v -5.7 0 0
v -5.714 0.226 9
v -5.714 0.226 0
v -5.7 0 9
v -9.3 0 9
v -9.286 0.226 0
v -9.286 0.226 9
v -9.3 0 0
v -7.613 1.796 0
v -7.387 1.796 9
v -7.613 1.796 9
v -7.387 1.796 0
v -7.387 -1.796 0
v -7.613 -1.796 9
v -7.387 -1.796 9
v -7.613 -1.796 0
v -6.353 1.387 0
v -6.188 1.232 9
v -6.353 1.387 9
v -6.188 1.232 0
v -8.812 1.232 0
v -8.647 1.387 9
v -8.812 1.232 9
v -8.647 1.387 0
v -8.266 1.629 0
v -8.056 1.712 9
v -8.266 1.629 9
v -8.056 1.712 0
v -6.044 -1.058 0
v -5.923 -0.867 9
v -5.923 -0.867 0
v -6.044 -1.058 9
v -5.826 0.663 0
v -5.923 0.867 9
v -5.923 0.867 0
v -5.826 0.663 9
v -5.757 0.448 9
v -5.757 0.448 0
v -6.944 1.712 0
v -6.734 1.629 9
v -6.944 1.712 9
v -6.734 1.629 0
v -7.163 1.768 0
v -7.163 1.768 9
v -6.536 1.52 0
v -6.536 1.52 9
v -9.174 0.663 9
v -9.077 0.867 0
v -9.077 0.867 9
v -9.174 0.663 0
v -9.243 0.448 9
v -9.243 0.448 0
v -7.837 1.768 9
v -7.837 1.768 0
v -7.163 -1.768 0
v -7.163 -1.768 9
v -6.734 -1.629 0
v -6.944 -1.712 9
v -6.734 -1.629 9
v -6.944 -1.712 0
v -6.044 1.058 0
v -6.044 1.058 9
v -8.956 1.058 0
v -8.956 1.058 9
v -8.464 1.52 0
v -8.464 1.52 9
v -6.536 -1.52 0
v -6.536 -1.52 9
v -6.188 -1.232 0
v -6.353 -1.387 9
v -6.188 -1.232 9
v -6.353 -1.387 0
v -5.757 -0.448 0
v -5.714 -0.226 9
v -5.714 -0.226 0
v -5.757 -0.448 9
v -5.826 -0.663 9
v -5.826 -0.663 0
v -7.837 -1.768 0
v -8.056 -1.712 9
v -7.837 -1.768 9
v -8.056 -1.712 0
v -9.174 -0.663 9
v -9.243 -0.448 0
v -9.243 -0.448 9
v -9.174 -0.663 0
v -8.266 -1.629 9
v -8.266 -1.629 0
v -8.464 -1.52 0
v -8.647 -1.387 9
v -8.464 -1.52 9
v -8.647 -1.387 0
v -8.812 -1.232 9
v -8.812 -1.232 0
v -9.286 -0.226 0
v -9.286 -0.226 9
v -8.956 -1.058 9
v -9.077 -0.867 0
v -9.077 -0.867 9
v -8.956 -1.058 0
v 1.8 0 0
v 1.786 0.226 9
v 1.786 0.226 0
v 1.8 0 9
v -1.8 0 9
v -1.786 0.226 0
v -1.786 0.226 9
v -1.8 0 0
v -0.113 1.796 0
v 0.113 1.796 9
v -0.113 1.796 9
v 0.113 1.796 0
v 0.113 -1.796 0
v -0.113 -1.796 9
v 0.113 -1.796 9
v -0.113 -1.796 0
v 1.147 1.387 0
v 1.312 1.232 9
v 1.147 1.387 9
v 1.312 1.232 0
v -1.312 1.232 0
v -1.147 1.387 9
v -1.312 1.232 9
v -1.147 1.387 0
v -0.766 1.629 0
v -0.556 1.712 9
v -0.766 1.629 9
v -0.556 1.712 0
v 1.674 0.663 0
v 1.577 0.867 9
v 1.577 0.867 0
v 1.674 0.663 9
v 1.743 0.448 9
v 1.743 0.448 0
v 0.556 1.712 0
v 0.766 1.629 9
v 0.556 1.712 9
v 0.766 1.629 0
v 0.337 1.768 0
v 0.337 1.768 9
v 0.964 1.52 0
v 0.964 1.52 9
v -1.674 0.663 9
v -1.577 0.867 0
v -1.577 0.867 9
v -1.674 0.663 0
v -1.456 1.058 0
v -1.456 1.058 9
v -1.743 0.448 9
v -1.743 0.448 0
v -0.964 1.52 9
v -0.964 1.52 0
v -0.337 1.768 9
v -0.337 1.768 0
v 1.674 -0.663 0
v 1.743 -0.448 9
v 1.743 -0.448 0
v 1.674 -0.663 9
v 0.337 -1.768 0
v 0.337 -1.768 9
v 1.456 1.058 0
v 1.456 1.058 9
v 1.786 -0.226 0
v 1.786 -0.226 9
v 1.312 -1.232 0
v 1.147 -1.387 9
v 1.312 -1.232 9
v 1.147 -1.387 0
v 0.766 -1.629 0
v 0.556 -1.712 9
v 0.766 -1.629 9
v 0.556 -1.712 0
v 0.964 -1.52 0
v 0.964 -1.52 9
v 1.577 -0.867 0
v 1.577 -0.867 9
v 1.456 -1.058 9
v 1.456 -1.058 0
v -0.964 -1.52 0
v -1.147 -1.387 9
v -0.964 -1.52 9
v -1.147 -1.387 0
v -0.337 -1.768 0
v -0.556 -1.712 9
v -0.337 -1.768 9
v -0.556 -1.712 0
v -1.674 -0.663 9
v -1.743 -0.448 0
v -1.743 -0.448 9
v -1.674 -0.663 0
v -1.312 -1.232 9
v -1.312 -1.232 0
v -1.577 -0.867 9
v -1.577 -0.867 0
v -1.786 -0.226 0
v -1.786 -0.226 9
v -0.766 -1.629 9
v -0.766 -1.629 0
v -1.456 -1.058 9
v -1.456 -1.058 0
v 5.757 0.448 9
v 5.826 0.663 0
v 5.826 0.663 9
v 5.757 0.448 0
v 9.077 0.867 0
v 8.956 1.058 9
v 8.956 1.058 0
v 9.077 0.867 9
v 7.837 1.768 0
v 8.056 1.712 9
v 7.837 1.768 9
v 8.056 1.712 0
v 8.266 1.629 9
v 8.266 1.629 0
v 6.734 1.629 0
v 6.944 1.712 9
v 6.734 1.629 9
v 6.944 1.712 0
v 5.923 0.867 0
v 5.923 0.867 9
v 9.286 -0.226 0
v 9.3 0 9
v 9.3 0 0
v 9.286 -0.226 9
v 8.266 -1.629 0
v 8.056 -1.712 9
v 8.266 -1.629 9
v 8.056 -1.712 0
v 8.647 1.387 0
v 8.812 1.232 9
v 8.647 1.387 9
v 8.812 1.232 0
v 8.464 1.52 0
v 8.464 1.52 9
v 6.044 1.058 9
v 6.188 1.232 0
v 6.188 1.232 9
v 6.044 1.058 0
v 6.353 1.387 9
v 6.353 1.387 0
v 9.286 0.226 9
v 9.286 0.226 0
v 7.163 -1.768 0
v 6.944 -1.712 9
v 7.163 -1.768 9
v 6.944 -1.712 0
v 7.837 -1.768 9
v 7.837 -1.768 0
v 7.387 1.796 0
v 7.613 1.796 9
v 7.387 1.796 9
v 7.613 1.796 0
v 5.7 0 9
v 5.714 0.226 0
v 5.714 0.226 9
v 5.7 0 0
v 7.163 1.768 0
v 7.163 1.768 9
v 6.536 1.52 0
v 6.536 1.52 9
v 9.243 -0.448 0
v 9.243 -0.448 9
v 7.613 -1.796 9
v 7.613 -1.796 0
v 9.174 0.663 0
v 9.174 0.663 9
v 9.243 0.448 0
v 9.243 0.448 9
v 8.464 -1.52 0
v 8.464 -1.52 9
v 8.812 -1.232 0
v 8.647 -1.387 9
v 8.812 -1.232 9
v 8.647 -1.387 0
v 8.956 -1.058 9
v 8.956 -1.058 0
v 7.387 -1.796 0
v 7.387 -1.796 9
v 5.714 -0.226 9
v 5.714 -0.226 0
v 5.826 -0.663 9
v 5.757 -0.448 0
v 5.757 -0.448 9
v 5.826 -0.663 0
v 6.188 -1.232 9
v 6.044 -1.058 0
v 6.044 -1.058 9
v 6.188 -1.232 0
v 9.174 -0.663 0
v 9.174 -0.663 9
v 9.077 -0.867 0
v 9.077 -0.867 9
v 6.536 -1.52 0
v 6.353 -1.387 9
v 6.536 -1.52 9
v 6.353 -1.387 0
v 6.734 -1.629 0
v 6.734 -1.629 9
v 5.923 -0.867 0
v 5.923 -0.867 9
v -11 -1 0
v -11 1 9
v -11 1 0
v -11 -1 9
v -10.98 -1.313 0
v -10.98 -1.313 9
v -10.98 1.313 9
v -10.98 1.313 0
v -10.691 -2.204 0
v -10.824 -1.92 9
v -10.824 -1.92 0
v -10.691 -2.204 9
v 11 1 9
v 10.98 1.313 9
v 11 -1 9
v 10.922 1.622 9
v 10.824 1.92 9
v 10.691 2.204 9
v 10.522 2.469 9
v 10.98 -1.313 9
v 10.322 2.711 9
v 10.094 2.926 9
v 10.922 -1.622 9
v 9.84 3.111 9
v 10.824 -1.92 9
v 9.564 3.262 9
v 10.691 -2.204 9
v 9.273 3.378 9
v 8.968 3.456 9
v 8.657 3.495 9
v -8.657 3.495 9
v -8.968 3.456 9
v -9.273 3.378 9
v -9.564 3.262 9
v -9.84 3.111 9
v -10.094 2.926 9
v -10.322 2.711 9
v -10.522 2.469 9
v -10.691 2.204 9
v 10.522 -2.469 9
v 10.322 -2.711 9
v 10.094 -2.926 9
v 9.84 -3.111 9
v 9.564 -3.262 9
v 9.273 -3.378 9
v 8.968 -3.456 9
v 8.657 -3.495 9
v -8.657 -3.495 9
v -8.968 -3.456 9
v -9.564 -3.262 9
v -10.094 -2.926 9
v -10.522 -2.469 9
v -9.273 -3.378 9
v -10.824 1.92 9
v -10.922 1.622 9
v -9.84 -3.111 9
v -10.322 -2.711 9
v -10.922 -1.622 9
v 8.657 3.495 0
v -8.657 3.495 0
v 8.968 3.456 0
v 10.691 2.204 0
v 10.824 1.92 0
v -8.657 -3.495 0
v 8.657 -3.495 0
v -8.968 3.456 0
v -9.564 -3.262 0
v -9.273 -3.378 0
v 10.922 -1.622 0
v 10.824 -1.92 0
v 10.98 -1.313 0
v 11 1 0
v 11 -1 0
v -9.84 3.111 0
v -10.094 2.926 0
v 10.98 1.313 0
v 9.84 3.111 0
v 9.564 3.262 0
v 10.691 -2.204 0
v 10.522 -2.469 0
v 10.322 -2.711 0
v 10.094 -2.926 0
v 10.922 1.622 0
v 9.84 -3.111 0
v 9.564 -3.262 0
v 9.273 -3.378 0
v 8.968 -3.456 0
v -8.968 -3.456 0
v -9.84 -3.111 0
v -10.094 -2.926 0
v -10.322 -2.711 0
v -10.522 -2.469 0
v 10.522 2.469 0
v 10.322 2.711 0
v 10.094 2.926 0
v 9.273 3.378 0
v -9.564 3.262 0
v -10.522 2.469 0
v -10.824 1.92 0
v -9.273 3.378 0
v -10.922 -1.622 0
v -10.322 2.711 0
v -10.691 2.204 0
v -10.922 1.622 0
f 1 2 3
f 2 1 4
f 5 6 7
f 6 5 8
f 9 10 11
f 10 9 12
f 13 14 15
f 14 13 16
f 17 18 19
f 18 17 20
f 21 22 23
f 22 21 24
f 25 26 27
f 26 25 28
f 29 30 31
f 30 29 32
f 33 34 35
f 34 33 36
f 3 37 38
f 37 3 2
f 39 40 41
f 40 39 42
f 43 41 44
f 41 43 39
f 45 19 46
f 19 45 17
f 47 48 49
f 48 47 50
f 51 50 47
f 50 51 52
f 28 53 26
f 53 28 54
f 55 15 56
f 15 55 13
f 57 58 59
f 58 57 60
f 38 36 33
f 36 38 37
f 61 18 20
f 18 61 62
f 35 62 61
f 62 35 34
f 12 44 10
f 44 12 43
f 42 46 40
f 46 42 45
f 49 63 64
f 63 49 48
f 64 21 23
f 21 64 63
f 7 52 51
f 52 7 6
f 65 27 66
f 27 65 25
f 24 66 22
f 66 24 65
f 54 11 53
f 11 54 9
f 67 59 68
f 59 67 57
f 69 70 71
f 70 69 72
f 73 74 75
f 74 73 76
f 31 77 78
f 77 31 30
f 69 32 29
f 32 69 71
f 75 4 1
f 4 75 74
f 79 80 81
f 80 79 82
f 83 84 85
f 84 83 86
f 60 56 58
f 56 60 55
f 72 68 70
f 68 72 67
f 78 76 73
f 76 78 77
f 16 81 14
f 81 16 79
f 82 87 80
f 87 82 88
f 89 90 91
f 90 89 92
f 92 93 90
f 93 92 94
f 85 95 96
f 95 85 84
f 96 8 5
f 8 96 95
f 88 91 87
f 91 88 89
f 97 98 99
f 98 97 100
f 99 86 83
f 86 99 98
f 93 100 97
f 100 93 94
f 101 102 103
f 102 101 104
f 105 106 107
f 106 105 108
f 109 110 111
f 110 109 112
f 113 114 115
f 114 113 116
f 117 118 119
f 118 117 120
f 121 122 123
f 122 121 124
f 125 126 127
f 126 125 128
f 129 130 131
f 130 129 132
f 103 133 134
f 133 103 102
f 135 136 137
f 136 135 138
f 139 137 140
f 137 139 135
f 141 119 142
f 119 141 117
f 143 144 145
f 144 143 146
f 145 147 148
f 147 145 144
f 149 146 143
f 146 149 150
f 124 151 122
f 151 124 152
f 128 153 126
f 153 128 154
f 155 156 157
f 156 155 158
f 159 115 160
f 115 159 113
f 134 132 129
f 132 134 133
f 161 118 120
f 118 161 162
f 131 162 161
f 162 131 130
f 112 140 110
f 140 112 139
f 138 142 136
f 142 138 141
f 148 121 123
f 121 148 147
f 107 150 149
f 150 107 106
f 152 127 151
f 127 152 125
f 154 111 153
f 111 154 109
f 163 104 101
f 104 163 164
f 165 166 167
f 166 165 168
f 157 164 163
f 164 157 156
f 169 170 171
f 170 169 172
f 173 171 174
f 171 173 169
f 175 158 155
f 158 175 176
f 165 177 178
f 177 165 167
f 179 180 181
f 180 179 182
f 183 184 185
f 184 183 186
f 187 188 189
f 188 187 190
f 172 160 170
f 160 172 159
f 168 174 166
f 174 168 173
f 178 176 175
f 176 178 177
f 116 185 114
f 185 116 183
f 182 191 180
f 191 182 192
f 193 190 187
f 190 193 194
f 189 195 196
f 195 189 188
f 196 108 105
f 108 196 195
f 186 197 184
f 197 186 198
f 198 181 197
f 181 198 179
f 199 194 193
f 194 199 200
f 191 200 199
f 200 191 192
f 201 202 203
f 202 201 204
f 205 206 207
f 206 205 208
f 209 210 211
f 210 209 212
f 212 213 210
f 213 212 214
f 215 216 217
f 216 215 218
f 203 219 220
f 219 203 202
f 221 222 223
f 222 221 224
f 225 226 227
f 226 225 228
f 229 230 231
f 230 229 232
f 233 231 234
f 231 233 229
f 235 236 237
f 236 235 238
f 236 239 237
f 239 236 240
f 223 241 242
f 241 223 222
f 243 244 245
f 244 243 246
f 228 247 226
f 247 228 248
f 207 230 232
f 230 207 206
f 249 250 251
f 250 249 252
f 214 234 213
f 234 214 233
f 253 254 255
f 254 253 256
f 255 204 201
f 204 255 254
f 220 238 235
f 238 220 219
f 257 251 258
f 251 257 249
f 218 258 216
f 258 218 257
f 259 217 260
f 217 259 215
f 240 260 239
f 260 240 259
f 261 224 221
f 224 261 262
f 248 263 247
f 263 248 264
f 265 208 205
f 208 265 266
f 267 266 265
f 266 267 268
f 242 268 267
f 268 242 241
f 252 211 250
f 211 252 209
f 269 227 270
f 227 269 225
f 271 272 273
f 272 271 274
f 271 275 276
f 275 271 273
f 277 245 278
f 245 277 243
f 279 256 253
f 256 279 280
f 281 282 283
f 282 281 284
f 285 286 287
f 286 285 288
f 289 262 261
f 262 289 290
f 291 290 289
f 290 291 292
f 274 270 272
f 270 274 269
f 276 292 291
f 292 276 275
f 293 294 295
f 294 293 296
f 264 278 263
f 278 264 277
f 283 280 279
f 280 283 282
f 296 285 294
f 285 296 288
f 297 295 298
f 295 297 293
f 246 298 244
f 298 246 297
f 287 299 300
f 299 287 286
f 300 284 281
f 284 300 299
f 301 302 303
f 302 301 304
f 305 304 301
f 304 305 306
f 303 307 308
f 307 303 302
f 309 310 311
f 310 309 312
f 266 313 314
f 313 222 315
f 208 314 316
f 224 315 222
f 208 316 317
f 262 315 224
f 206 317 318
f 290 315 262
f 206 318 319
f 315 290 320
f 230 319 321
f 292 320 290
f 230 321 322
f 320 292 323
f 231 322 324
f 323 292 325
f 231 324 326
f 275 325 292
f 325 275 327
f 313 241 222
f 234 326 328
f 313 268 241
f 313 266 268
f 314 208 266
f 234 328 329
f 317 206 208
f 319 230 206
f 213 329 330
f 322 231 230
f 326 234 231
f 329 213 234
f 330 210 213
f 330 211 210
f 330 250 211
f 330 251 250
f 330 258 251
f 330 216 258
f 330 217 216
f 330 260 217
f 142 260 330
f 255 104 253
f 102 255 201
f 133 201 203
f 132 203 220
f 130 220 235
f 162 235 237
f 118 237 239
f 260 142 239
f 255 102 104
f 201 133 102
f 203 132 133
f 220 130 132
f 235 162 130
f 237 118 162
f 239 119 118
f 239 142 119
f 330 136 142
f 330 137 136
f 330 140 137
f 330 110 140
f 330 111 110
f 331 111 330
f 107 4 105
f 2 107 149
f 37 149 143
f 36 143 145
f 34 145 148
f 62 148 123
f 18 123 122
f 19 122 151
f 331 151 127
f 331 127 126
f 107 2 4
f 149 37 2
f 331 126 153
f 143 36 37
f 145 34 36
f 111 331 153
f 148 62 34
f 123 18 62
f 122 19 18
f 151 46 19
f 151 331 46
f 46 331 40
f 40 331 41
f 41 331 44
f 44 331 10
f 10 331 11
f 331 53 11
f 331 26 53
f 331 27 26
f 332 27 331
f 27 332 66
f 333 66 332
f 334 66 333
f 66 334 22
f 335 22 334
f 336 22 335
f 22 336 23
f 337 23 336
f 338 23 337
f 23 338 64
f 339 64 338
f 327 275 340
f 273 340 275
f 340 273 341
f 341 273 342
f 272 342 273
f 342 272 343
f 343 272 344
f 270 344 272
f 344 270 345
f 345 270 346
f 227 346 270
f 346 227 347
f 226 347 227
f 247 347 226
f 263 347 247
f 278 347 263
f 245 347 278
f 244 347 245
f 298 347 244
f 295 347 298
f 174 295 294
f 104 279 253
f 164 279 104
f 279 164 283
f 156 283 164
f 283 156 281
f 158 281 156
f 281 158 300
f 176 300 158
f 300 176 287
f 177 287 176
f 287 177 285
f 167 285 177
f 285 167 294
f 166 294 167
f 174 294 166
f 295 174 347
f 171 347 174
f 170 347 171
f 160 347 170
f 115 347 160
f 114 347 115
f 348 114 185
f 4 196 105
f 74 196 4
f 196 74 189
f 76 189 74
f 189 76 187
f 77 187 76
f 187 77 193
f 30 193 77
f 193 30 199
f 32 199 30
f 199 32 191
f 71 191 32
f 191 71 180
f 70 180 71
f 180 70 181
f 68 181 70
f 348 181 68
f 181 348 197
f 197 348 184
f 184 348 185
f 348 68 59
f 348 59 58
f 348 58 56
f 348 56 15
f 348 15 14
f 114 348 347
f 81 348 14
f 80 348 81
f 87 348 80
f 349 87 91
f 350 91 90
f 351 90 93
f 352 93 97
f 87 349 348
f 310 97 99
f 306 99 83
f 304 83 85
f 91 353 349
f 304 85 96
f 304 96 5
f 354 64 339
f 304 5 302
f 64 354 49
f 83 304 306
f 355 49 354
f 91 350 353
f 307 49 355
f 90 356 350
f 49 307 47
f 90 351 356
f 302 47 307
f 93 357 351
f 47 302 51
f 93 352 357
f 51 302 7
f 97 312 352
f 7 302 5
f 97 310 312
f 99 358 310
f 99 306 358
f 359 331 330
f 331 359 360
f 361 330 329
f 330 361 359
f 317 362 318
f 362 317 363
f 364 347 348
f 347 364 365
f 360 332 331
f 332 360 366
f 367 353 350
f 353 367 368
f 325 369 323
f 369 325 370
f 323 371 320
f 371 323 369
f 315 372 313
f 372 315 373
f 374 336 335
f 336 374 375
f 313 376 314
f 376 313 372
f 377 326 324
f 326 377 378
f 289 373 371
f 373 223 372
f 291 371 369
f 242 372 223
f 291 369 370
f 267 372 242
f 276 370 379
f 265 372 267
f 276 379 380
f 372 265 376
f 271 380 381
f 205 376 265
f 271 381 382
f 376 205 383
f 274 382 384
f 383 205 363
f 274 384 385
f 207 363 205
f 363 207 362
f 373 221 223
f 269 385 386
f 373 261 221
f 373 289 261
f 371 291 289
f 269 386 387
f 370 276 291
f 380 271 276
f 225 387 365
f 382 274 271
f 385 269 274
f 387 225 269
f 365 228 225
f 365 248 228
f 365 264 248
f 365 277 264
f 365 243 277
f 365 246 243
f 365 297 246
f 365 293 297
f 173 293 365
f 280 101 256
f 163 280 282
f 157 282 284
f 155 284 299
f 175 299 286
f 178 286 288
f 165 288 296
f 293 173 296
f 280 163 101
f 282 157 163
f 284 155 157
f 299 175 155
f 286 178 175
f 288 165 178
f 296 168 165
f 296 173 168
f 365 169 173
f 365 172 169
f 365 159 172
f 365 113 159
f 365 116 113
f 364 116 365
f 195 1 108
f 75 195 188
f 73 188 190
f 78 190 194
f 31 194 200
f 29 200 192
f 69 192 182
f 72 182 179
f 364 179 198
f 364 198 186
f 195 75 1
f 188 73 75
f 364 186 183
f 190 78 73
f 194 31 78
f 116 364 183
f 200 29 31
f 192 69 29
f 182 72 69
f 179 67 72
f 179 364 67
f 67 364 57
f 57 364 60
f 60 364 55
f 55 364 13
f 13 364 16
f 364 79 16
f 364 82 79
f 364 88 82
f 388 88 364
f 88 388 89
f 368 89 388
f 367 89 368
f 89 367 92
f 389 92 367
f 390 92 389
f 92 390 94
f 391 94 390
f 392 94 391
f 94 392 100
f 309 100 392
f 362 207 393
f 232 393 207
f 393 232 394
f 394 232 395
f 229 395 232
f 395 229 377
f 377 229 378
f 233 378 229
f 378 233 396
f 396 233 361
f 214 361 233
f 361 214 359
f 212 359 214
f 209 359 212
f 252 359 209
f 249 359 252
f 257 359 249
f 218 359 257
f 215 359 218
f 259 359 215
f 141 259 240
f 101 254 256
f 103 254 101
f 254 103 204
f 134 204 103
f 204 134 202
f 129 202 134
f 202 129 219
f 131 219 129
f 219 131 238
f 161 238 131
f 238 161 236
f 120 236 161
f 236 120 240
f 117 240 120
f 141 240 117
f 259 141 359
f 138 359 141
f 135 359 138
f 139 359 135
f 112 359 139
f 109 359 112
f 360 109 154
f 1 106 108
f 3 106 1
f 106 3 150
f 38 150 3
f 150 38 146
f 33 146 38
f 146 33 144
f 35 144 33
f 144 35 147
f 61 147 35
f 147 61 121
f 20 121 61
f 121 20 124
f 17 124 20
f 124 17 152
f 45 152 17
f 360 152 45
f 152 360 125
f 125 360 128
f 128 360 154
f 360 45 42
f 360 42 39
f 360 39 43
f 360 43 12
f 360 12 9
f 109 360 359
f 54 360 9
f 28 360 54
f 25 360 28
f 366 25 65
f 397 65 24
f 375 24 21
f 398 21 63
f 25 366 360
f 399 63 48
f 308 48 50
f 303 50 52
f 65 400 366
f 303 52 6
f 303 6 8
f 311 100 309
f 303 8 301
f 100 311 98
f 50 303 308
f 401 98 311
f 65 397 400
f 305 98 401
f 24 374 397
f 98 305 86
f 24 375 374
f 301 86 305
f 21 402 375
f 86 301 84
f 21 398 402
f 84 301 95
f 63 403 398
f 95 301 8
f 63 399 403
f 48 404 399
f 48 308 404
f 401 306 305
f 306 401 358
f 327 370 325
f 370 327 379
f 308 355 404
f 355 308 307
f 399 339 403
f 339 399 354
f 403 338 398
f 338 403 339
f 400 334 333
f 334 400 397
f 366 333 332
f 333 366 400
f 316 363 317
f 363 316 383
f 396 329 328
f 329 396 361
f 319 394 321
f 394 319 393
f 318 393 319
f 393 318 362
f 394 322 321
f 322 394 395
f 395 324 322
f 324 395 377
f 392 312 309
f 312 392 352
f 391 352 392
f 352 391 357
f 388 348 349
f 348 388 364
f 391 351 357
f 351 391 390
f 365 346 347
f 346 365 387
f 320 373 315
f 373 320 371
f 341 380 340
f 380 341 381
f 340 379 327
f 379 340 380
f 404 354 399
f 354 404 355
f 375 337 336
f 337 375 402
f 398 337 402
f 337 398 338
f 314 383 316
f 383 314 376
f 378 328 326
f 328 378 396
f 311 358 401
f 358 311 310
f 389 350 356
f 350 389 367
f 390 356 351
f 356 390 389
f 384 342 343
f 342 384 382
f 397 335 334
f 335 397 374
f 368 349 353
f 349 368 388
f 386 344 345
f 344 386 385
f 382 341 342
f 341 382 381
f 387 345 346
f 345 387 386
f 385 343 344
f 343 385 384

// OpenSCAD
$fn = 50;


difference() {
	union() {
		translate(v = [0, 0, 0]) {
			rotate(a = [0, 0, 0]) {
				hull() {
					translate(v = [-8.5000000000, 1.0000000000, 0]) {
						rotate(a = [0, 0, 0]) {
							translate(v = [0, 0, 0]) {
								rotate(a = [0, 0, 0]) {
									cylinder(h = 9, r = 2.5000000000);
								}
							}
						}
					}
					translate(v = [8.5000000000, 1.0000000000, 0]) {
						rotate(a = [0, 0, 0]) {
							translate(v = [0, 0, 0]) {
								rotate(a = [0, 0, 0]) {
									cylinder(h = 9, r = 2.5000000000);
								}
							}
						}
					}
					translate(v = [-8.5000000000, -1.0000000000, 0]) {
						rotate(a = [0, 0, 0]) {
							translate(v = [0, 0, 0]) {
								rotate(a = [0, 0, 0]) {
									cylinder(h = 9, r = 2.5000000000);
								}
							}
						}
					}
					translate(v = [8.5000000000, -1.0000000000, 0]) {
						rotate(a = [0, 0, 0]) {
							translate(v = [0, 0, 0]) {
								rotate(a = [0, 0, 0]) {
									cylinder(h = 9, r = 2.5000000000);
								}
							}
						}
					}
				}
			}
		}
	}
	union() {
		translate(v = [-7.5000000000, 0.0000000000, 0]) {
			rotate(a = [0, 0, 0]) {
				translate(v = [0, 0, -50]) {
					rotate(a = [0, 0, 0]) {
						cylinder(h = 100, r = 1.8000000000);
					}
				}
			}
		}
		translate(v = [0.0000000000, 0.0000000000, 0]) {
			rotate(a = [0, 0, 0]) {
				translate(v = [0, 0, -50]) {
					rotate(a = [0, 0, 0]) {
						cylinder(h = 100, r = 1.8000000000);
					}
				}
			}
		}
		translate(v = [7.5000000000, 0.0000000000, 0]) {
			rotate(a = [0, 0, 0]) {
				translate(v = [0, 0, -50]) {
					rotate(a = [0, 0, 0]) {
						cylinder(h = 100, r = 1.8000000000);
					}
				}
			}
		}
	}
}
